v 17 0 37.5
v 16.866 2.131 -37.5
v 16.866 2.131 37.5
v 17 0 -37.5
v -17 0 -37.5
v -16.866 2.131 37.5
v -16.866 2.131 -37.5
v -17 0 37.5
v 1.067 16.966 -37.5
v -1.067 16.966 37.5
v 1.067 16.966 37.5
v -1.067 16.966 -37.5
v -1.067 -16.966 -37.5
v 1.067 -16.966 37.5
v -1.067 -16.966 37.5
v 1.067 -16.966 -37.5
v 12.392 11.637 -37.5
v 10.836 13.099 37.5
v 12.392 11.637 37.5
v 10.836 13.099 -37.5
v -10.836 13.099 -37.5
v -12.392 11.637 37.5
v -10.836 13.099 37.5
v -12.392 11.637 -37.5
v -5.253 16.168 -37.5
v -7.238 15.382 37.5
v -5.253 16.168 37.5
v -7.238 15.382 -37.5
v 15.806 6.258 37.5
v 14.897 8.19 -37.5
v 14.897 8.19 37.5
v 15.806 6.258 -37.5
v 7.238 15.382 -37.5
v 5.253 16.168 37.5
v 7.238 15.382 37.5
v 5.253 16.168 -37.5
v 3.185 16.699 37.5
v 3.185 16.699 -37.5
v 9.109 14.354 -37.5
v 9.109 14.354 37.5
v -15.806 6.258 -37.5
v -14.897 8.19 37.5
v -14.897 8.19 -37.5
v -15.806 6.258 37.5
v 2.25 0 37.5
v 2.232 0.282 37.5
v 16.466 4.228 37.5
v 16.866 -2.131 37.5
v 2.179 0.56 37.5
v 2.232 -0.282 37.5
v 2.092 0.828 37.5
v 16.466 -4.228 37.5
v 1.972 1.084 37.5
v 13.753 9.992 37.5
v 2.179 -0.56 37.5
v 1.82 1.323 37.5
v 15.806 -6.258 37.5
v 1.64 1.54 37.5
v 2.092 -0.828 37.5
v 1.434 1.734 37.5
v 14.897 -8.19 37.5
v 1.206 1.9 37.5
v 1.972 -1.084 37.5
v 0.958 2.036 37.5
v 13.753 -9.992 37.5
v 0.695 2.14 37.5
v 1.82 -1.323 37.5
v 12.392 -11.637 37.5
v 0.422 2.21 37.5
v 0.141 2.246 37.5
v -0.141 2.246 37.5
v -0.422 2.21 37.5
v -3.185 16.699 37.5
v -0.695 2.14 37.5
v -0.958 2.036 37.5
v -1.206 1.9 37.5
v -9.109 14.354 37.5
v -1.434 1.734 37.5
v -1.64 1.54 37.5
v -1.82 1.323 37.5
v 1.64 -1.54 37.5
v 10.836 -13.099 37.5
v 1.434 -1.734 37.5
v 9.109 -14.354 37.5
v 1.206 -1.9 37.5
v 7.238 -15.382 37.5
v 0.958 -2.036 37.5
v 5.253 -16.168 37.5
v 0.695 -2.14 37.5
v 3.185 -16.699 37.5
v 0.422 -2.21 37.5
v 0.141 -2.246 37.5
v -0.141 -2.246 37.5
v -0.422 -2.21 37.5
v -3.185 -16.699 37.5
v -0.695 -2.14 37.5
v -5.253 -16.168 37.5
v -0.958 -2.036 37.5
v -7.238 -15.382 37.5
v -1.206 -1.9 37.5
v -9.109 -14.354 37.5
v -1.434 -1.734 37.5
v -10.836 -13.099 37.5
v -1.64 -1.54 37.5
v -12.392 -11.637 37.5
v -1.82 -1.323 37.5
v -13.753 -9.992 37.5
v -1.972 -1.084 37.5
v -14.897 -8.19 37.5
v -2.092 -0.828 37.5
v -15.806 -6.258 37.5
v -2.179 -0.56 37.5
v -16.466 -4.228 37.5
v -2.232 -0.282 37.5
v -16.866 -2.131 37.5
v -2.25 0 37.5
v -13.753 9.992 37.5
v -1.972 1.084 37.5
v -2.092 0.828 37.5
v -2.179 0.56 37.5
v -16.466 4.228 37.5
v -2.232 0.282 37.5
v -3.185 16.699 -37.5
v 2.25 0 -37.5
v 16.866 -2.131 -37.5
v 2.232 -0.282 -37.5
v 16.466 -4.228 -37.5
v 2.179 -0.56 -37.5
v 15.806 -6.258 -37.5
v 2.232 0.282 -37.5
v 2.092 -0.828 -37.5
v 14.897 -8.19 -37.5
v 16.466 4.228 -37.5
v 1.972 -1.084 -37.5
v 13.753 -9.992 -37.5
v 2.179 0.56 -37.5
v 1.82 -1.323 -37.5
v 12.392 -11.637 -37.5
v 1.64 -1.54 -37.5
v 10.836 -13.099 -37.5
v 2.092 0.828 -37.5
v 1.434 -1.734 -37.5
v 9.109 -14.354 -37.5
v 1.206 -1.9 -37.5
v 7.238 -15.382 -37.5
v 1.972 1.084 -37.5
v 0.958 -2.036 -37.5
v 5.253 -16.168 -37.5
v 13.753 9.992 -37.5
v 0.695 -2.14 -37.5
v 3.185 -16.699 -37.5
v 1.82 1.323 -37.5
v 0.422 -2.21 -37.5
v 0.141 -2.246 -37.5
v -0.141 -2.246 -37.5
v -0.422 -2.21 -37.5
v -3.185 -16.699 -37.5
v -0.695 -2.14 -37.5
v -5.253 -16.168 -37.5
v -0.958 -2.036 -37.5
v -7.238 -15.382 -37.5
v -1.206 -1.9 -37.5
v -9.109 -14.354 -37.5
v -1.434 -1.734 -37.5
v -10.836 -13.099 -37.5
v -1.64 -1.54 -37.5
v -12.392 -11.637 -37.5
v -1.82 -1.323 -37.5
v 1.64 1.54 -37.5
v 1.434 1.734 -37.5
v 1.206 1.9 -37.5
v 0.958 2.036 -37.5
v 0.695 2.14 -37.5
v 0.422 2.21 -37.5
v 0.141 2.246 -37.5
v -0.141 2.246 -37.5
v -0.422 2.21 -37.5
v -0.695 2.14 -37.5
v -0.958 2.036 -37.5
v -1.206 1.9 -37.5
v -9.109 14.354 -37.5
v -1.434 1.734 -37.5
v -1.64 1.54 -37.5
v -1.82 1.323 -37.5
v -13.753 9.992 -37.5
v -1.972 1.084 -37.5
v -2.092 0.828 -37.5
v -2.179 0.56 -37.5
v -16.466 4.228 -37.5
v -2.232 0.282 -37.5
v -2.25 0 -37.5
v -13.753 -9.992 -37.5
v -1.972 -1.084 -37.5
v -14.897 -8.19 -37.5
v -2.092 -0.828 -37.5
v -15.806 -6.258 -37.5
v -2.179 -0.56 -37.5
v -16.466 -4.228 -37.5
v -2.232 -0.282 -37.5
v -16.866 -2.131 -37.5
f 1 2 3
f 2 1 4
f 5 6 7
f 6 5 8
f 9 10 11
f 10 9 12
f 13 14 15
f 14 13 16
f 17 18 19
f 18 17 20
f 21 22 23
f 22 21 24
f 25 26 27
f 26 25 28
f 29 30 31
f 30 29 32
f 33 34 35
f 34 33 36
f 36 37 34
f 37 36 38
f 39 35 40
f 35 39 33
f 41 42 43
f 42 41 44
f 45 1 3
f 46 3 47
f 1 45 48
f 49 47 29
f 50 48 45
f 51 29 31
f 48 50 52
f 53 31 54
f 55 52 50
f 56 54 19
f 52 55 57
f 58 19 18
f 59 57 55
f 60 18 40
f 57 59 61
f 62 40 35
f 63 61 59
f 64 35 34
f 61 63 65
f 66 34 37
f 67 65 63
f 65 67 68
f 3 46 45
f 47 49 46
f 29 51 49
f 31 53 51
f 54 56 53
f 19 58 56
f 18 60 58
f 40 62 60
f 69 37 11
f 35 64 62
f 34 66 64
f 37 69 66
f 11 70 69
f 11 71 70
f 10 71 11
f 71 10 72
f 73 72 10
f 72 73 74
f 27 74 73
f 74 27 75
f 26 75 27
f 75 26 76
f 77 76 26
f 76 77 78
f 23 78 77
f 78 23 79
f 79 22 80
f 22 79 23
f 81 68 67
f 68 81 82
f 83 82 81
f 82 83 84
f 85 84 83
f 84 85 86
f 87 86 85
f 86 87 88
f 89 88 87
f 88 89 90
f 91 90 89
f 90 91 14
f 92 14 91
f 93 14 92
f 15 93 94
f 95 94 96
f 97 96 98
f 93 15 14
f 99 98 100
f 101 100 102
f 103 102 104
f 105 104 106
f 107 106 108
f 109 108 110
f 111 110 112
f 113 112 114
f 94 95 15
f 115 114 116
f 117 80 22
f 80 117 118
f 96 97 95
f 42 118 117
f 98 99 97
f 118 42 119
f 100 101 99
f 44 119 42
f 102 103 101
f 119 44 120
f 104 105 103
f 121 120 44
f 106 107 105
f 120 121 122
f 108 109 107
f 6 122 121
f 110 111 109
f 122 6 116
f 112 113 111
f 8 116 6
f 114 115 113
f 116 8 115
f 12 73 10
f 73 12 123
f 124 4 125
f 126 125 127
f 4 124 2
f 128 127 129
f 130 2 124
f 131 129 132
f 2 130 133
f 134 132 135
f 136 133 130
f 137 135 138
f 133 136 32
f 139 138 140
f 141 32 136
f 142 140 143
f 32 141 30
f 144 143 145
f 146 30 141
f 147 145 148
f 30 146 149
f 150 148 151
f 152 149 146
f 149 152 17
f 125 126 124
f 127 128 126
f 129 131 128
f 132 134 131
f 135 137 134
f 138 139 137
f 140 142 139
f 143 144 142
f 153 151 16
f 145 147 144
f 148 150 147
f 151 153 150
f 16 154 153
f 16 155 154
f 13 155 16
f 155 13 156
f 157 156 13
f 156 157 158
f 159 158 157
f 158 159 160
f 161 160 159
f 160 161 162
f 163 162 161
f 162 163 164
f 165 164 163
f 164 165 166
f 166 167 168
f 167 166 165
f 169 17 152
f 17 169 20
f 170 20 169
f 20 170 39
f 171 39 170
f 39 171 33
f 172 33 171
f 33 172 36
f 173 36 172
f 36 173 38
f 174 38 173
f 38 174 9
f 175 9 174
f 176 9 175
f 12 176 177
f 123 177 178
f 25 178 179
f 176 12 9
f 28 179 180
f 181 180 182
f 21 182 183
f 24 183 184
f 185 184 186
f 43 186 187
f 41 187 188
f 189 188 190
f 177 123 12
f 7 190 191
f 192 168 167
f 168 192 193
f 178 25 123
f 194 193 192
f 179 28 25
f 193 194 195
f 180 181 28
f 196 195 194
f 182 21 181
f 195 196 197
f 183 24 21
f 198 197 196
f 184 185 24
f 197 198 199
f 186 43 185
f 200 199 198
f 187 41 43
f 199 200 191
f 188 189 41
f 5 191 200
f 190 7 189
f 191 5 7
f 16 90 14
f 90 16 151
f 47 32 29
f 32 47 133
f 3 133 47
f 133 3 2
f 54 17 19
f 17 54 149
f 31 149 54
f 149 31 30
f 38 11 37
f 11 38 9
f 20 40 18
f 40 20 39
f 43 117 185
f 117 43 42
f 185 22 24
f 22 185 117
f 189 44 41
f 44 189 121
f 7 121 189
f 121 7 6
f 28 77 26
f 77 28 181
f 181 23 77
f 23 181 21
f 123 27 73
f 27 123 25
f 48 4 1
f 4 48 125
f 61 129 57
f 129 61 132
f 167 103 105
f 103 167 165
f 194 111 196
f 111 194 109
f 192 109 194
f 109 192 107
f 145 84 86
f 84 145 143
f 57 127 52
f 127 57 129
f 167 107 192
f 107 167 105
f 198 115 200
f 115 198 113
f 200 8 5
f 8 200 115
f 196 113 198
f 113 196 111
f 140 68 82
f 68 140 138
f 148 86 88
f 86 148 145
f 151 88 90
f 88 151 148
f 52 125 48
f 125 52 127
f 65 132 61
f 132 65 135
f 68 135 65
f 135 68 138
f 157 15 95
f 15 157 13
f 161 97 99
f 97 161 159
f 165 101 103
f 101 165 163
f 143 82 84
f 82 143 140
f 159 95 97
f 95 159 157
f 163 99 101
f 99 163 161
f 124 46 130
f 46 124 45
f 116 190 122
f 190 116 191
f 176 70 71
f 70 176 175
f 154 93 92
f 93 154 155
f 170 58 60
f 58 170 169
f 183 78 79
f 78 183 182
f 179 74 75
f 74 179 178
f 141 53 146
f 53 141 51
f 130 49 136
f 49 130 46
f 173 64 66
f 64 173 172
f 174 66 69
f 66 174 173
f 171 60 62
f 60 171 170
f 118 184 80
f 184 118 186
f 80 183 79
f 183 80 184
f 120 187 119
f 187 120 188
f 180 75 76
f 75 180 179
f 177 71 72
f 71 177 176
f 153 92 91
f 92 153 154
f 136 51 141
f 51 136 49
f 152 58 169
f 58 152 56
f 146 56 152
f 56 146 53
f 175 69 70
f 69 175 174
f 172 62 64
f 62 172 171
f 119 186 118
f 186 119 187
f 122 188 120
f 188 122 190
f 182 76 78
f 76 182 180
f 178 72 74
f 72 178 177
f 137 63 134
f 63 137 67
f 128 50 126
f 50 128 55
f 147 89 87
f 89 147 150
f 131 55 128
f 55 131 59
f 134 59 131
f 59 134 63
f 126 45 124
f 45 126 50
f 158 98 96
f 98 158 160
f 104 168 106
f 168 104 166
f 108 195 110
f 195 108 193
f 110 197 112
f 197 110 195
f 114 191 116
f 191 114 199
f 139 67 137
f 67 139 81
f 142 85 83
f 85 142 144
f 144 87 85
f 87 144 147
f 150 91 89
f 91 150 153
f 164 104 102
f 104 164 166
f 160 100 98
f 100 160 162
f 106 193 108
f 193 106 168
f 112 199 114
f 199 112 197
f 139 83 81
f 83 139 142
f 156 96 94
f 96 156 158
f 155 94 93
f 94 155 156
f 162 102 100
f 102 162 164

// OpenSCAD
$fn = 50;


difference() {
	union() {
		translate(v = [0, 0, -37.5000000000]) {
			cylinder(h = 75, r = 17.0000000000);
		}
	}
	union() {
		translate(v = [0, 0, -100.0000000000]) {
			cylinder(h = 200, r = 2.2500000000);
		}
	}
}
